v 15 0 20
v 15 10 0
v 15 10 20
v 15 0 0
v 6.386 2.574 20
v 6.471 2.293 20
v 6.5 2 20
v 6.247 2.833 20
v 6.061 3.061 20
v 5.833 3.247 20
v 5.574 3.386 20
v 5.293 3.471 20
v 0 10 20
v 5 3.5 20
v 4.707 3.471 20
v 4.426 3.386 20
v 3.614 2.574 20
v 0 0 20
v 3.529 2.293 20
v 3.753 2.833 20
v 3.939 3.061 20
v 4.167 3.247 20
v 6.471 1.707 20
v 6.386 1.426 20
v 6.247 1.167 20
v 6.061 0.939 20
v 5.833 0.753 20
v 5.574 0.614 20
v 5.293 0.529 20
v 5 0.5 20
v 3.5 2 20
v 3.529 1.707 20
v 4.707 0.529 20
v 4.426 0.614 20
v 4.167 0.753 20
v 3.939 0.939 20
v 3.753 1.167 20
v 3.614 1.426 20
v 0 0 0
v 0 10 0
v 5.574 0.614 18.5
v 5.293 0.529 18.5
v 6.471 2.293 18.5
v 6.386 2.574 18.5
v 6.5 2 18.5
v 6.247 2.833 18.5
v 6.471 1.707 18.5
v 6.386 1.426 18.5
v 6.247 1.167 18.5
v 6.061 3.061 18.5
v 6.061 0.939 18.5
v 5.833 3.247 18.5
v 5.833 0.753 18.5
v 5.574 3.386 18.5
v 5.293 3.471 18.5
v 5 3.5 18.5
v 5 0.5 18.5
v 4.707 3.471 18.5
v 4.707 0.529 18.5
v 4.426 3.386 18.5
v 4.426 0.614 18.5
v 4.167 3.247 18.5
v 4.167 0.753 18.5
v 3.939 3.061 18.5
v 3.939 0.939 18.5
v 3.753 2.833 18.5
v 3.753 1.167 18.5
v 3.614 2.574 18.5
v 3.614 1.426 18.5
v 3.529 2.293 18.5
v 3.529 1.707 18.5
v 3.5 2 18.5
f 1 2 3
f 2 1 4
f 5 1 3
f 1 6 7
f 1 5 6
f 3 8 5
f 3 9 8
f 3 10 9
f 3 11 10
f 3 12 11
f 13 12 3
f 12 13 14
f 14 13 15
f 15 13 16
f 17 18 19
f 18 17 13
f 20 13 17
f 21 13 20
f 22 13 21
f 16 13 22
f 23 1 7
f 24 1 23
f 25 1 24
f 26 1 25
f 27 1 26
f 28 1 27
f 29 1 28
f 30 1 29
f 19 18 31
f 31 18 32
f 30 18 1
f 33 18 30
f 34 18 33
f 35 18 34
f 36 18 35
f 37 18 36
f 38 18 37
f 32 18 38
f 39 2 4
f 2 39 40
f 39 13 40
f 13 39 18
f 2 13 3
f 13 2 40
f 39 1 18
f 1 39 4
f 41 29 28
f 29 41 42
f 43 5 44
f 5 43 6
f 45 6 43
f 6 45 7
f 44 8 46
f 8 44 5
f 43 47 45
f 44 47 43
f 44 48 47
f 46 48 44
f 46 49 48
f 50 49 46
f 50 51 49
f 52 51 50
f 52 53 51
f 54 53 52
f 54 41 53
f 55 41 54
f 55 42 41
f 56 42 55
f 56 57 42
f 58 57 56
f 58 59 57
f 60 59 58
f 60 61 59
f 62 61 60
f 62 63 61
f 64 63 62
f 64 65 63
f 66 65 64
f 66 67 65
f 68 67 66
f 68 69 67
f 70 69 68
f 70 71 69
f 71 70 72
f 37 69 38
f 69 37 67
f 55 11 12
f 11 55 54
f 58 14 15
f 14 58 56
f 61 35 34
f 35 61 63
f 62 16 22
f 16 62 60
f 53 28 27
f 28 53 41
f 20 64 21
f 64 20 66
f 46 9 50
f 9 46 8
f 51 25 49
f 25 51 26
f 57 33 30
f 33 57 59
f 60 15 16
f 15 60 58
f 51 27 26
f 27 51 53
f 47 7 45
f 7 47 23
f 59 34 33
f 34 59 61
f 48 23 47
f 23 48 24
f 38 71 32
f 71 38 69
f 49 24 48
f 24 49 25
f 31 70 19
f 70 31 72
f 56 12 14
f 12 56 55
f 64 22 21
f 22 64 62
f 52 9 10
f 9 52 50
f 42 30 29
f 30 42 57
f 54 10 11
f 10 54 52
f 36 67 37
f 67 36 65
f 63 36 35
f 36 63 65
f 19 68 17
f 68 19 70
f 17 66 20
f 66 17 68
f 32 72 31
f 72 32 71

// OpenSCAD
// Attachment Point Parameters
attachment_height = 20;
attachment_width = 15;
attachment_depth = 10;
hole_diameter = 3;
hole_offset_x = 5;
hole_offset_y = 2;

module attachment() {
  difference() {
    cube([attachment_width, attachment_depth, attachment_height]);
    translate([hole_offset_x, hole_offset_y, attachment_height - hole_diameter/2])
      cylinder(h = attachment_height - hole_diameter/2, r = hole_diameter/2, $fn=32);
  }
}

attachment();
